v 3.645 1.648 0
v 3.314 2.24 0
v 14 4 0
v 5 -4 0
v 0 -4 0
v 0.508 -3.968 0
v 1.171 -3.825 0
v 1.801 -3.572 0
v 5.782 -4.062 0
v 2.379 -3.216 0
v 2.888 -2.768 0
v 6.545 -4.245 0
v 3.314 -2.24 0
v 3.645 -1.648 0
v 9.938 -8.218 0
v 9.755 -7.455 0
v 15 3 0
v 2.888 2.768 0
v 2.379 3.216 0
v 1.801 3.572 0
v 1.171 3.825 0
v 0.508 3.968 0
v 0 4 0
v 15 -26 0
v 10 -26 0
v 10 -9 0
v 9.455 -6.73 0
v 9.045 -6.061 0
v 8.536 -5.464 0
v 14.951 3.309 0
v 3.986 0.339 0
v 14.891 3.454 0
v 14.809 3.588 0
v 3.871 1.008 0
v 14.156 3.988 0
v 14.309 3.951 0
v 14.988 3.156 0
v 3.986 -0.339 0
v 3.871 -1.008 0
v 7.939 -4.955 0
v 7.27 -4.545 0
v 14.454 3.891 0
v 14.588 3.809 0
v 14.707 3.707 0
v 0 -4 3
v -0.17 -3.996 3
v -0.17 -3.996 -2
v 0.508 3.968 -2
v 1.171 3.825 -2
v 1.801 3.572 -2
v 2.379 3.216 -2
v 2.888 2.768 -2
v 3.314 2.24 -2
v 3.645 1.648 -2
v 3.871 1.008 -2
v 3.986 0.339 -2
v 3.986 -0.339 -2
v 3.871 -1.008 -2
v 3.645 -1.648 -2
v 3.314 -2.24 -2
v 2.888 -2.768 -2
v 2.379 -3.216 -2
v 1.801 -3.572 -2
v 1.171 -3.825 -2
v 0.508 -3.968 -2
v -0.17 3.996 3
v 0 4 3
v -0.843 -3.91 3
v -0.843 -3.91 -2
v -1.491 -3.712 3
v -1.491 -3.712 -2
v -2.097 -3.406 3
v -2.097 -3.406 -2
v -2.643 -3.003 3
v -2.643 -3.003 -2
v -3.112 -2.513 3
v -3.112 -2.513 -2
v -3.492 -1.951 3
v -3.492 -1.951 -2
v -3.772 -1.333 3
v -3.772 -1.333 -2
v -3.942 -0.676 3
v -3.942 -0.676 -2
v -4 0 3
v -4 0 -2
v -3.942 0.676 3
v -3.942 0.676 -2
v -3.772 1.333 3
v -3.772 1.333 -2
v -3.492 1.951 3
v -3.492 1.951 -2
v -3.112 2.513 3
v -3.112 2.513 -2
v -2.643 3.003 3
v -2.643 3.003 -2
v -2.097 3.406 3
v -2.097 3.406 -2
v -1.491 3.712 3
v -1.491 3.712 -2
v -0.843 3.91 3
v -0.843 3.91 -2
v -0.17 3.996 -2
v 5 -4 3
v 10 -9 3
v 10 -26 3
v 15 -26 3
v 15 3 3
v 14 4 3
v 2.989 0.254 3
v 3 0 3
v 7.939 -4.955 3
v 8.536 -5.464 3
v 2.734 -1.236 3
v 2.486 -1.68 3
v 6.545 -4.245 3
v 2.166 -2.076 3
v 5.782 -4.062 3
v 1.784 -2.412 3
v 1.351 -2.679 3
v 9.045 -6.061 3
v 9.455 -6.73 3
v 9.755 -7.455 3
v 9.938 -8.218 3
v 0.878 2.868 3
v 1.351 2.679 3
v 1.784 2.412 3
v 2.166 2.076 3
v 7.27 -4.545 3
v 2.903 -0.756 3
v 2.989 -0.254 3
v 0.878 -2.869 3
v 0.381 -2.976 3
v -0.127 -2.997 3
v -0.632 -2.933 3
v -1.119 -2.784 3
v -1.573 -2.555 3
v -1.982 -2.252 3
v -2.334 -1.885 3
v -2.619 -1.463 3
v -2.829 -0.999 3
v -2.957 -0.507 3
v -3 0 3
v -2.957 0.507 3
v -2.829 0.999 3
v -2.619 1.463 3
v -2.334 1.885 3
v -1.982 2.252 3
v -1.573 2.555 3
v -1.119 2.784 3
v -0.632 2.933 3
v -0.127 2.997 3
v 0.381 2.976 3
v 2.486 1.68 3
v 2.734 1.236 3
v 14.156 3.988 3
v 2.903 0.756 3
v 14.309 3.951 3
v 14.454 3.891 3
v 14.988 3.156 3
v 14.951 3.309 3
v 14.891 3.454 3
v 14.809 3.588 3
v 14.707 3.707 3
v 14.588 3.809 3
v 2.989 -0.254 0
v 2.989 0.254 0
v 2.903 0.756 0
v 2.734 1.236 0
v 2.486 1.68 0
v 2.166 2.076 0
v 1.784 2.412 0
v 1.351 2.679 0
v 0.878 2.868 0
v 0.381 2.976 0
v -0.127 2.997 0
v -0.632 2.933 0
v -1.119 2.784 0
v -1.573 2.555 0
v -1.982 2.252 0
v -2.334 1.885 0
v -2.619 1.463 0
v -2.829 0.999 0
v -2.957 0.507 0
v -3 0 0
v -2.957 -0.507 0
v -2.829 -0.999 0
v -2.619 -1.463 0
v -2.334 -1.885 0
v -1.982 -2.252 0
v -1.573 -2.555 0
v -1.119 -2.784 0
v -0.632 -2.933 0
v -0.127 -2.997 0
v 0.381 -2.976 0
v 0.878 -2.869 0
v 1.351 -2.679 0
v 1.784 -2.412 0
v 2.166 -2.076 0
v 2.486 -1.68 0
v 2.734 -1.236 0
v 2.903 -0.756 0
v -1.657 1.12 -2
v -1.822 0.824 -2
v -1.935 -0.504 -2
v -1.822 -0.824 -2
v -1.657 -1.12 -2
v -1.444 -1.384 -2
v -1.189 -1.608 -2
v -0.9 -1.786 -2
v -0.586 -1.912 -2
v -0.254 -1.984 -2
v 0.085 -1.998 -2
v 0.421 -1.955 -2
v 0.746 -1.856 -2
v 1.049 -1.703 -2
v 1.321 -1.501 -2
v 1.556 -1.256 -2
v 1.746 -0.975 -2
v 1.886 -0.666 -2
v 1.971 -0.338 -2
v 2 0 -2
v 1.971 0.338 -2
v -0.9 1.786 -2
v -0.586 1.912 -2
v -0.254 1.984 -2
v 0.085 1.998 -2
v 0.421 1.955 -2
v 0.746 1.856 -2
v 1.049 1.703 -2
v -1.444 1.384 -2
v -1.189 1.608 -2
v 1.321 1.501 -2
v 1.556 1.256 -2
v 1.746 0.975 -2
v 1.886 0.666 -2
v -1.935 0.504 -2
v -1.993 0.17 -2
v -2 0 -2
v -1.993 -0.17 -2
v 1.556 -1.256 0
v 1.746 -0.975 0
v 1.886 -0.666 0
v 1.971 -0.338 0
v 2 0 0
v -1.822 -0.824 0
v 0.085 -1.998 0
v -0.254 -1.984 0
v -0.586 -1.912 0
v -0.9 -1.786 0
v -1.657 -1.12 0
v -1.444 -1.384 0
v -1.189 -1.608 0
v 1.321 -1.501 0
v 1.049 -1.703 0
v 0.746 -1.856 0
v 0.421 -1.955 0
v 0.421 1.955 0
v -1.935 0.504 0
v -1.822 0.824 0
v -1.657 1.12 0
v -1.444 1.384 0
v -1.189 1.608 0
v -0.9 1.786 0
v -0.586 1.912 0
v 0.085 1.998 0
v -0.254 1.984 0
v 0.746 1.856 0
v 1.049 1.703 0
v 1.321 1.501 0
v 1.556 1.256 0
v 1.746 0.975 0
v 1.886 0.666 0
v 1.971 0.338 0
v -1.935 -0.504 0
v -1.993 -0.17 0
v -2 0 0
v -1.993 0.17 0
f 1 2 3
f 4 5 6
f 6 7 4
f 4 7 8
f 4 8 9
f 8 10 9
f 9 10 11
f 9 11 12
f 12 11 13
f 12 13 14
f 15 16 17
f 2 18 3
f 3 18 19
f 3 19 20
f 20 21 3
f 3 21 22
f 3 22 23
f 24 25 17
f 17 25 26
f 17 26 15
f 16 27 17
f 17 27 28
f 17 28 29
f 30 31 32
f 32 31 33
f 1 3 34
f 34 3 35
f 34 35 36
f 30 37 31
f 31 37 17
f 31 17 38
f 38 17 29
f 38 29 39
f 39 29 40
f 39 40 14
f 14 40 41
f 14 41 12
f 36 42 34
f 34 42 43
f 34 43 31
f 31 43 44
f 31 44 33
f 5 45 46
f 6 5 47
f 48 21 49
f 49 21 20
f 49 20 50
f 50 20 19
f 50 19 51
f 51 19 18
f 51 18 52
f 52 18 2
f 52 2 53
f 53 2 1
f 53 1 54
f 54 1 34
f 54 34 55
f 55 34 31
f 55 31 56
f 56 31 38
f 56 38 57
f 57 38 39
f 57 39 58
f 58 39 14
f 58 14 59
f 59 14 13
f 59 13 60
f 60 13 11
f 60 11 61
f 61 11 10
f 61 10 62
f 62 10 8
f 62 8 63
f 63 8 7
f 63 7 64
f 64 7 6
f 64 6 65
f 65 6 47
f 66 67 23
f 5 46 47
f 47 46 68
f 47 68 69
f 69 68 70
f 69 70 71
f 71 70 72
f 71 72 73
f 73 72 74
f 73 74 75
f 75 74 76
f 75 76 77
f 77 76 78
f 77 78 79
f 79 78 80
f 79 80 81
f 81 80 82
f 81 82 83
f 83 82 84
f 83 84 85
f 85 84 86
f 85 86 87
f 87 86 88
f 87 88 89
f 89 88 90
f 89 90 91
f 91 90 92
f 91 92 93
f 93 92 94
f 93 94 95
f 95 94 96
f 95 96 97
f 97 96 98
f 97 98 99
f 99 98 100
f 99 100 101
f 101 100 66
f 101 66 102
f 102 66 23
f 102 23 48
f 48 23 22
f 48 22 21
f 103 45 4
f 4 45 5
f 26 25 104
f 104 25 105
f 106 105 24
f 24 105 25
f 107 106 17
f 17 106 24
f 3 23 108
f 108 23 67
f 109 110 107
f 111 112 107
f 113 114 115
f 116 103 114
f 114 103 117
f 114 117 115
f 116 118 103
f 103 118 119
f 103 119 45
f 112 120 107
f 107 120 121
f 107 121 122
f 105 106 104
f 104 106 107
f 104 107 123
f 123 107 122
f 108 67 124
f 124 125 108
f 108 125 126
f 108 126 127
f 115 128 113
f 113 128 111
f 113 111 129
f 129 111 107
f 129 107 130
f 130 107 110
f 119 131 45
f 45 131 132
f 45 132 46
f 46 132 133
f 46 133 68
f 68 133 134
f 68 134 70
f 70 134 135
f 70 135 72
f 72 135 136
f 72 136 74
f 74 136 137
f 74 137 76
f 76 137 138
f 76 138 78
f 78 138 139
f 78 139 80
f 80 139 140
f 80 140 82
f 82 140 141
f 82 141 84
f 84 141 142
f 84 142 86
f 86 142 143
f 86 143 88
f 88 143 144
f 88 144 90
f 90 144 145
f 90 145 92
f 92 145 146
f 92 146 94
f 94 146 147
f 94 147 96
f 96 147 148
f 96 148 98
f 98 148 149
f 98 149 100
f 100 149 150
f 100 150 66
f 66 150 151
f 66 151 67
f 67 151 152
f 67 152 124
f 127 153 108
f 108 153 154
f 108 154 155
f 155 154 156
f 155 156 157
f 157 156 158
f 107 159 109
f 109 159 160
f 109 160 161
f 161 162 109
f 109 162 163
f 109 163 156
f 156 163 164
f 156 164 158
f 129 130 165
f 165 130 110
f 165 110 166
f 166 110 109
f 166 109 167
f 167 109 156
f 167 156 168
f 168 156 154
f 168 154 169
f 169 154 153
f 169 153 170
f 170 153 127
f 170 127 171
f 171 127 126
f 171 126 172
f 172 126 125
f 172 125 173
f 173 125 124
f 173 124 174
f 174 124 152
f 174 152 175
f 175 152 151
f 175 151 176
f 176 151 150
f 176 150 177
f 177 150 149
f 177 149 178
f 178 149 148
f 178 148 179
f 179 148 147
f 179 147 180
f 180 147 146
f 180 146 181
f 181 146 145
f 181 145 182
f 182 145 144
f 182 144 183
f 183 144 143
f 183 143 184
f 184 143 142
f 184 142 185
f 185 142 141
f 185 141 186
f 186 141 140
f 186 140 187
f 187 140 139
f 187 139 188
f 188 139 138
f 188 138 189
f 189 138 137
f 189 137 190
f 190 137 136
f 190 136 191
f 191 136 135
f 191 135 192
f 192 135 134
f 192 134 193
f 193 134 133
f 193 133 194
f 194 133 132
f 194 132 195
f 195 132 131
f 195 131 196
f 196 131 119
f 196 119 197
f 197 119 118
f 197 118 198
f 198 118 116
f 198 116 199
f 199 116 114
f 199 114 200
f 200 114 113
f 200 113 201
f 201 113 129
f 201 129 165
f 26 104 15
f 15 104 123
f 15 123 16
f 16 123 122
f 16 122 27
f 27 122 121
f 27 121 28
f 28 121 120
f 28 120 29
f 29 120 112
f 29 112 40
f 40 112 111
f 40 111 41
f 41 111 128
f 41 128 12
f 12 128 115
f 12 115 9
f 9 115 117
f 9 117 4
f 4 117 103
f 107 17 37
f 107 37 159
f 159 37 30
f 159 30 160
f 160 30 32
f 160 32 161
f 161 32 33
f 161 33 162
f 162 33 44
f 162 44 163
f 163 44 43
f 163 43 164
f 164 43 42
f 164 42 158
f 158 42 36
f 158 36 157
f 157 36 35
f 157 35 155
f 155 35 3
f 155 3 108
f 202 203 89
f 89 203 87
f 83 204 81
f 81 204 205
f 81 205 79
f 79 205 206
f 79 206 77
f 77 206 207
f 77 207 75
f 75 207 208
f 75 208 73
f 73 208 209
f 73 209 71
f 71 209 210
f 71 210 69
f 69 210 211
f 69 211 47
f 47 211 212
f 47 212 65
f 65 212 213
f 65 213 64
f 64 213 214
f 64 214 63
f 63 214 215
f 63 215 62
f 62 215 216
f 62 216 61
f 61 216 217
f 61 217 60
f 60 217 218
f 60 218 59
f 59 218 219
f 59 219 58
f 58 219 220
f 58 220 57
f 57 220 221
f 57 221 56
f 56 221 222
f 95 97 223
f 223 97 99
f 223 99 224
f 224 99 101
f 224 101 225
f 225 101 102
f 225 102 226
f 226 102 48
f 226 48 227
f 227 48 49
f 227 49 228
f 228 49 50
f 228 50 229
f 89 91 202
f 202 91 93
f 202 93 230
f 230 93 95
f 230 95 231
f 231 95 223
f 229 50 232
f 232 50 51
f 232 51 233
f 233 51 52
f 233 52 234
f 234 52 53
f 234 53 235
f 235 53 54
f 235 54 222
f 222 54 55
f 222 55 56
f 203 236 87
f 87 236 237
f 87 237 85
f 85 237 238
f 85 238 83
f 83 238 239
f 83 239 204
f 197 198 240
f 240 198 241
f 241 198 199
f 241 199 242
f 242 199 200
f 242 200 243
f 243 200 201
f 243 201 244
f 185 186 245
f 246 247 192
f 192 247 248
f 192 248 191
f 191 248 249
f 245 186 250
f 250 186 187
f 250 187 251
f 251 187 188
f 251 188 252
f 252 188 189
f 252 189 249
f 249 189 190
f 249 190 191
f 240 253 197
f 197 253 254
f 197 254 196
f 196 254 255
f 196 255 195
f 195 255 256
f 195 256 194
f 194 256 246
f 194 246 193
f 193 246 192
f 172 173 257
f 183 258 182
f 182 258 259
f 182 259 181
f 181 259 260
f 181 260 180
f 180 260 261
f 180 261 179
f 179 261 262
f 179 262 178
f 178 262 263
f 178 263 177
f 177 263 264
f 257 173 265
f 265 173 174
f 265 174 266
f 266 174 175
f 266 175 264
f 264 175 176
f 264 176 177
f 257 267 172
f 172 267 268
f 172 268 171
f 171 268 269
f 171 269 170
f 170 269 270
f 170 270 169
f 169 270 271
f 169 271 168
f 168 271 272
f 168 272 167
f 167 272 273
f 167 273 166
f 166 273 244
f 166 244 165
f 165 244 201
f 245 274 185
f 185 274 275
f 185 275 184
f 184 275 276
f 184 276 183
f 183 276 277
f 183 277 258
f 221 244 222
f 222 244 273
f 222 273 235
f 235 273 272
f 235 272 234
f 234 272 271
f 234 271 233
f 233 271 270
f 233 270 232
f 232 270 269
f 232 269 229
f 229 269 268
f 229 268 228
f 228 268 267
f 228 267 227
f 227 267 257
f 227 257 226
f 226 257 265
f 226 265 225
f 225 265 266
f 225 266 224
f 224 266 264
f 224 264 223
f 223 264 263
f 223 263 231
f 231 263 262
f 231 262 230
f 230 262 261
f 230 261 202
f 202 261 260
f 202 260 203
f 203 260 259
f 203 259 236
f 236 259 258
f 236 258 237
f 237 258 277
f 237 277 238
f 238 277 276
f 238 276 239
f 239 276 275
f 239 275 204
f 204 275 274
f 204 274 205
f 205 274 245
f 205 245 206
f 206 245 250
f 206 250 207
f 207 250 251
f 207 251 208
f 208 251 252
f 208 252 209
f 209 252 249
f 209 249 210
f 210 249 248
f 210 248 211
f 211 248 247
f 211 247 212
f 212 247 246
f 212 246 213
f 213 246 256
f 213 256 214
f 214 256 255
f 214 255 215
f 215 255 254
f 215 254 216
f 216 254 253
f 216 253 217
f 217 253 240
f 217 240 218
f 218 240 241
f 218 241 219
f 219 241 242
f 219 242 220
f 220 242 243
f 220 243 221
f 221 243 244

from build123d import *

# Parameters (mm, degrees)
BOSS_EXTRUDE1_DEPTH = 3
SKETCH2_R           = 3
CUT_EXTRUDE1_DEPTH  = 5
FILLET1_R           = 5
FILLET3_R           = 1
SKETCH4_R           = 4
SKETCH4_R_2         = 2
BOSS_EXTRUDE2_DEPTH = 2


with BuildPart() as part:
    # Sketch1 → Boss-Extrude1 (new body)
    with BuildSketch(Plane.XY):
        with BuildLine():
            Line((0, -4), (10, -4))
            Line((10, -4), (10, -26))
            Line((10, -26), (15, -26))
            Line((15, -26), (15, 4))
            Line((15, 4), (10, 4))
            Line((10, 4), (0, 4))
            ThreePointArc((0, 4), (-4, 0), (0, -4))
        make_face()
    extrude(amount=BOSS_EXTRUDE1_DEPTH)

    # Sketch2 → Cut-Extrude1 (cut)
    with BuildSketch(Plane(origin=(0, 0, 0), x_dir=(-1, 0, 0), z_dir=(0, 0, -1))):
        Circle(SKETCH2_R)
    extrude(amount=-CUT_EXTRUDE1_DEPTH, mode=Mode.SUBTRACT)

    # Fillet1
    fillet1_edges = [part.edges().sort_by_distance(p)[0] for p in [
        (10, -4, 1.5),
    ]]
    fillet(fillet1_edges, radius=FILLET1_R)

    # Fillet3
    fillet3_edges = [part.edges().sort_by_distance(p)[0] for p in [
        (15, 4, 1.5),
    ]]
    fillet(fillet3_edges, radius=FILLET3_R)

    # Sketch4 → Boss-Extrude2 (add)
    with BuildSketch(Plane(origin=(0, 0, 0), x_dir=(-1, 0, 0), z_dir=(0, 0, -1))):
        Circle(SKETCH4_R)
        Circle(SKETCH4_R_2, mode=Mode.SUBTRACT)
    extrude(amount=BOSS_EXTRUDE2_DEPTH)


solid = part.part
